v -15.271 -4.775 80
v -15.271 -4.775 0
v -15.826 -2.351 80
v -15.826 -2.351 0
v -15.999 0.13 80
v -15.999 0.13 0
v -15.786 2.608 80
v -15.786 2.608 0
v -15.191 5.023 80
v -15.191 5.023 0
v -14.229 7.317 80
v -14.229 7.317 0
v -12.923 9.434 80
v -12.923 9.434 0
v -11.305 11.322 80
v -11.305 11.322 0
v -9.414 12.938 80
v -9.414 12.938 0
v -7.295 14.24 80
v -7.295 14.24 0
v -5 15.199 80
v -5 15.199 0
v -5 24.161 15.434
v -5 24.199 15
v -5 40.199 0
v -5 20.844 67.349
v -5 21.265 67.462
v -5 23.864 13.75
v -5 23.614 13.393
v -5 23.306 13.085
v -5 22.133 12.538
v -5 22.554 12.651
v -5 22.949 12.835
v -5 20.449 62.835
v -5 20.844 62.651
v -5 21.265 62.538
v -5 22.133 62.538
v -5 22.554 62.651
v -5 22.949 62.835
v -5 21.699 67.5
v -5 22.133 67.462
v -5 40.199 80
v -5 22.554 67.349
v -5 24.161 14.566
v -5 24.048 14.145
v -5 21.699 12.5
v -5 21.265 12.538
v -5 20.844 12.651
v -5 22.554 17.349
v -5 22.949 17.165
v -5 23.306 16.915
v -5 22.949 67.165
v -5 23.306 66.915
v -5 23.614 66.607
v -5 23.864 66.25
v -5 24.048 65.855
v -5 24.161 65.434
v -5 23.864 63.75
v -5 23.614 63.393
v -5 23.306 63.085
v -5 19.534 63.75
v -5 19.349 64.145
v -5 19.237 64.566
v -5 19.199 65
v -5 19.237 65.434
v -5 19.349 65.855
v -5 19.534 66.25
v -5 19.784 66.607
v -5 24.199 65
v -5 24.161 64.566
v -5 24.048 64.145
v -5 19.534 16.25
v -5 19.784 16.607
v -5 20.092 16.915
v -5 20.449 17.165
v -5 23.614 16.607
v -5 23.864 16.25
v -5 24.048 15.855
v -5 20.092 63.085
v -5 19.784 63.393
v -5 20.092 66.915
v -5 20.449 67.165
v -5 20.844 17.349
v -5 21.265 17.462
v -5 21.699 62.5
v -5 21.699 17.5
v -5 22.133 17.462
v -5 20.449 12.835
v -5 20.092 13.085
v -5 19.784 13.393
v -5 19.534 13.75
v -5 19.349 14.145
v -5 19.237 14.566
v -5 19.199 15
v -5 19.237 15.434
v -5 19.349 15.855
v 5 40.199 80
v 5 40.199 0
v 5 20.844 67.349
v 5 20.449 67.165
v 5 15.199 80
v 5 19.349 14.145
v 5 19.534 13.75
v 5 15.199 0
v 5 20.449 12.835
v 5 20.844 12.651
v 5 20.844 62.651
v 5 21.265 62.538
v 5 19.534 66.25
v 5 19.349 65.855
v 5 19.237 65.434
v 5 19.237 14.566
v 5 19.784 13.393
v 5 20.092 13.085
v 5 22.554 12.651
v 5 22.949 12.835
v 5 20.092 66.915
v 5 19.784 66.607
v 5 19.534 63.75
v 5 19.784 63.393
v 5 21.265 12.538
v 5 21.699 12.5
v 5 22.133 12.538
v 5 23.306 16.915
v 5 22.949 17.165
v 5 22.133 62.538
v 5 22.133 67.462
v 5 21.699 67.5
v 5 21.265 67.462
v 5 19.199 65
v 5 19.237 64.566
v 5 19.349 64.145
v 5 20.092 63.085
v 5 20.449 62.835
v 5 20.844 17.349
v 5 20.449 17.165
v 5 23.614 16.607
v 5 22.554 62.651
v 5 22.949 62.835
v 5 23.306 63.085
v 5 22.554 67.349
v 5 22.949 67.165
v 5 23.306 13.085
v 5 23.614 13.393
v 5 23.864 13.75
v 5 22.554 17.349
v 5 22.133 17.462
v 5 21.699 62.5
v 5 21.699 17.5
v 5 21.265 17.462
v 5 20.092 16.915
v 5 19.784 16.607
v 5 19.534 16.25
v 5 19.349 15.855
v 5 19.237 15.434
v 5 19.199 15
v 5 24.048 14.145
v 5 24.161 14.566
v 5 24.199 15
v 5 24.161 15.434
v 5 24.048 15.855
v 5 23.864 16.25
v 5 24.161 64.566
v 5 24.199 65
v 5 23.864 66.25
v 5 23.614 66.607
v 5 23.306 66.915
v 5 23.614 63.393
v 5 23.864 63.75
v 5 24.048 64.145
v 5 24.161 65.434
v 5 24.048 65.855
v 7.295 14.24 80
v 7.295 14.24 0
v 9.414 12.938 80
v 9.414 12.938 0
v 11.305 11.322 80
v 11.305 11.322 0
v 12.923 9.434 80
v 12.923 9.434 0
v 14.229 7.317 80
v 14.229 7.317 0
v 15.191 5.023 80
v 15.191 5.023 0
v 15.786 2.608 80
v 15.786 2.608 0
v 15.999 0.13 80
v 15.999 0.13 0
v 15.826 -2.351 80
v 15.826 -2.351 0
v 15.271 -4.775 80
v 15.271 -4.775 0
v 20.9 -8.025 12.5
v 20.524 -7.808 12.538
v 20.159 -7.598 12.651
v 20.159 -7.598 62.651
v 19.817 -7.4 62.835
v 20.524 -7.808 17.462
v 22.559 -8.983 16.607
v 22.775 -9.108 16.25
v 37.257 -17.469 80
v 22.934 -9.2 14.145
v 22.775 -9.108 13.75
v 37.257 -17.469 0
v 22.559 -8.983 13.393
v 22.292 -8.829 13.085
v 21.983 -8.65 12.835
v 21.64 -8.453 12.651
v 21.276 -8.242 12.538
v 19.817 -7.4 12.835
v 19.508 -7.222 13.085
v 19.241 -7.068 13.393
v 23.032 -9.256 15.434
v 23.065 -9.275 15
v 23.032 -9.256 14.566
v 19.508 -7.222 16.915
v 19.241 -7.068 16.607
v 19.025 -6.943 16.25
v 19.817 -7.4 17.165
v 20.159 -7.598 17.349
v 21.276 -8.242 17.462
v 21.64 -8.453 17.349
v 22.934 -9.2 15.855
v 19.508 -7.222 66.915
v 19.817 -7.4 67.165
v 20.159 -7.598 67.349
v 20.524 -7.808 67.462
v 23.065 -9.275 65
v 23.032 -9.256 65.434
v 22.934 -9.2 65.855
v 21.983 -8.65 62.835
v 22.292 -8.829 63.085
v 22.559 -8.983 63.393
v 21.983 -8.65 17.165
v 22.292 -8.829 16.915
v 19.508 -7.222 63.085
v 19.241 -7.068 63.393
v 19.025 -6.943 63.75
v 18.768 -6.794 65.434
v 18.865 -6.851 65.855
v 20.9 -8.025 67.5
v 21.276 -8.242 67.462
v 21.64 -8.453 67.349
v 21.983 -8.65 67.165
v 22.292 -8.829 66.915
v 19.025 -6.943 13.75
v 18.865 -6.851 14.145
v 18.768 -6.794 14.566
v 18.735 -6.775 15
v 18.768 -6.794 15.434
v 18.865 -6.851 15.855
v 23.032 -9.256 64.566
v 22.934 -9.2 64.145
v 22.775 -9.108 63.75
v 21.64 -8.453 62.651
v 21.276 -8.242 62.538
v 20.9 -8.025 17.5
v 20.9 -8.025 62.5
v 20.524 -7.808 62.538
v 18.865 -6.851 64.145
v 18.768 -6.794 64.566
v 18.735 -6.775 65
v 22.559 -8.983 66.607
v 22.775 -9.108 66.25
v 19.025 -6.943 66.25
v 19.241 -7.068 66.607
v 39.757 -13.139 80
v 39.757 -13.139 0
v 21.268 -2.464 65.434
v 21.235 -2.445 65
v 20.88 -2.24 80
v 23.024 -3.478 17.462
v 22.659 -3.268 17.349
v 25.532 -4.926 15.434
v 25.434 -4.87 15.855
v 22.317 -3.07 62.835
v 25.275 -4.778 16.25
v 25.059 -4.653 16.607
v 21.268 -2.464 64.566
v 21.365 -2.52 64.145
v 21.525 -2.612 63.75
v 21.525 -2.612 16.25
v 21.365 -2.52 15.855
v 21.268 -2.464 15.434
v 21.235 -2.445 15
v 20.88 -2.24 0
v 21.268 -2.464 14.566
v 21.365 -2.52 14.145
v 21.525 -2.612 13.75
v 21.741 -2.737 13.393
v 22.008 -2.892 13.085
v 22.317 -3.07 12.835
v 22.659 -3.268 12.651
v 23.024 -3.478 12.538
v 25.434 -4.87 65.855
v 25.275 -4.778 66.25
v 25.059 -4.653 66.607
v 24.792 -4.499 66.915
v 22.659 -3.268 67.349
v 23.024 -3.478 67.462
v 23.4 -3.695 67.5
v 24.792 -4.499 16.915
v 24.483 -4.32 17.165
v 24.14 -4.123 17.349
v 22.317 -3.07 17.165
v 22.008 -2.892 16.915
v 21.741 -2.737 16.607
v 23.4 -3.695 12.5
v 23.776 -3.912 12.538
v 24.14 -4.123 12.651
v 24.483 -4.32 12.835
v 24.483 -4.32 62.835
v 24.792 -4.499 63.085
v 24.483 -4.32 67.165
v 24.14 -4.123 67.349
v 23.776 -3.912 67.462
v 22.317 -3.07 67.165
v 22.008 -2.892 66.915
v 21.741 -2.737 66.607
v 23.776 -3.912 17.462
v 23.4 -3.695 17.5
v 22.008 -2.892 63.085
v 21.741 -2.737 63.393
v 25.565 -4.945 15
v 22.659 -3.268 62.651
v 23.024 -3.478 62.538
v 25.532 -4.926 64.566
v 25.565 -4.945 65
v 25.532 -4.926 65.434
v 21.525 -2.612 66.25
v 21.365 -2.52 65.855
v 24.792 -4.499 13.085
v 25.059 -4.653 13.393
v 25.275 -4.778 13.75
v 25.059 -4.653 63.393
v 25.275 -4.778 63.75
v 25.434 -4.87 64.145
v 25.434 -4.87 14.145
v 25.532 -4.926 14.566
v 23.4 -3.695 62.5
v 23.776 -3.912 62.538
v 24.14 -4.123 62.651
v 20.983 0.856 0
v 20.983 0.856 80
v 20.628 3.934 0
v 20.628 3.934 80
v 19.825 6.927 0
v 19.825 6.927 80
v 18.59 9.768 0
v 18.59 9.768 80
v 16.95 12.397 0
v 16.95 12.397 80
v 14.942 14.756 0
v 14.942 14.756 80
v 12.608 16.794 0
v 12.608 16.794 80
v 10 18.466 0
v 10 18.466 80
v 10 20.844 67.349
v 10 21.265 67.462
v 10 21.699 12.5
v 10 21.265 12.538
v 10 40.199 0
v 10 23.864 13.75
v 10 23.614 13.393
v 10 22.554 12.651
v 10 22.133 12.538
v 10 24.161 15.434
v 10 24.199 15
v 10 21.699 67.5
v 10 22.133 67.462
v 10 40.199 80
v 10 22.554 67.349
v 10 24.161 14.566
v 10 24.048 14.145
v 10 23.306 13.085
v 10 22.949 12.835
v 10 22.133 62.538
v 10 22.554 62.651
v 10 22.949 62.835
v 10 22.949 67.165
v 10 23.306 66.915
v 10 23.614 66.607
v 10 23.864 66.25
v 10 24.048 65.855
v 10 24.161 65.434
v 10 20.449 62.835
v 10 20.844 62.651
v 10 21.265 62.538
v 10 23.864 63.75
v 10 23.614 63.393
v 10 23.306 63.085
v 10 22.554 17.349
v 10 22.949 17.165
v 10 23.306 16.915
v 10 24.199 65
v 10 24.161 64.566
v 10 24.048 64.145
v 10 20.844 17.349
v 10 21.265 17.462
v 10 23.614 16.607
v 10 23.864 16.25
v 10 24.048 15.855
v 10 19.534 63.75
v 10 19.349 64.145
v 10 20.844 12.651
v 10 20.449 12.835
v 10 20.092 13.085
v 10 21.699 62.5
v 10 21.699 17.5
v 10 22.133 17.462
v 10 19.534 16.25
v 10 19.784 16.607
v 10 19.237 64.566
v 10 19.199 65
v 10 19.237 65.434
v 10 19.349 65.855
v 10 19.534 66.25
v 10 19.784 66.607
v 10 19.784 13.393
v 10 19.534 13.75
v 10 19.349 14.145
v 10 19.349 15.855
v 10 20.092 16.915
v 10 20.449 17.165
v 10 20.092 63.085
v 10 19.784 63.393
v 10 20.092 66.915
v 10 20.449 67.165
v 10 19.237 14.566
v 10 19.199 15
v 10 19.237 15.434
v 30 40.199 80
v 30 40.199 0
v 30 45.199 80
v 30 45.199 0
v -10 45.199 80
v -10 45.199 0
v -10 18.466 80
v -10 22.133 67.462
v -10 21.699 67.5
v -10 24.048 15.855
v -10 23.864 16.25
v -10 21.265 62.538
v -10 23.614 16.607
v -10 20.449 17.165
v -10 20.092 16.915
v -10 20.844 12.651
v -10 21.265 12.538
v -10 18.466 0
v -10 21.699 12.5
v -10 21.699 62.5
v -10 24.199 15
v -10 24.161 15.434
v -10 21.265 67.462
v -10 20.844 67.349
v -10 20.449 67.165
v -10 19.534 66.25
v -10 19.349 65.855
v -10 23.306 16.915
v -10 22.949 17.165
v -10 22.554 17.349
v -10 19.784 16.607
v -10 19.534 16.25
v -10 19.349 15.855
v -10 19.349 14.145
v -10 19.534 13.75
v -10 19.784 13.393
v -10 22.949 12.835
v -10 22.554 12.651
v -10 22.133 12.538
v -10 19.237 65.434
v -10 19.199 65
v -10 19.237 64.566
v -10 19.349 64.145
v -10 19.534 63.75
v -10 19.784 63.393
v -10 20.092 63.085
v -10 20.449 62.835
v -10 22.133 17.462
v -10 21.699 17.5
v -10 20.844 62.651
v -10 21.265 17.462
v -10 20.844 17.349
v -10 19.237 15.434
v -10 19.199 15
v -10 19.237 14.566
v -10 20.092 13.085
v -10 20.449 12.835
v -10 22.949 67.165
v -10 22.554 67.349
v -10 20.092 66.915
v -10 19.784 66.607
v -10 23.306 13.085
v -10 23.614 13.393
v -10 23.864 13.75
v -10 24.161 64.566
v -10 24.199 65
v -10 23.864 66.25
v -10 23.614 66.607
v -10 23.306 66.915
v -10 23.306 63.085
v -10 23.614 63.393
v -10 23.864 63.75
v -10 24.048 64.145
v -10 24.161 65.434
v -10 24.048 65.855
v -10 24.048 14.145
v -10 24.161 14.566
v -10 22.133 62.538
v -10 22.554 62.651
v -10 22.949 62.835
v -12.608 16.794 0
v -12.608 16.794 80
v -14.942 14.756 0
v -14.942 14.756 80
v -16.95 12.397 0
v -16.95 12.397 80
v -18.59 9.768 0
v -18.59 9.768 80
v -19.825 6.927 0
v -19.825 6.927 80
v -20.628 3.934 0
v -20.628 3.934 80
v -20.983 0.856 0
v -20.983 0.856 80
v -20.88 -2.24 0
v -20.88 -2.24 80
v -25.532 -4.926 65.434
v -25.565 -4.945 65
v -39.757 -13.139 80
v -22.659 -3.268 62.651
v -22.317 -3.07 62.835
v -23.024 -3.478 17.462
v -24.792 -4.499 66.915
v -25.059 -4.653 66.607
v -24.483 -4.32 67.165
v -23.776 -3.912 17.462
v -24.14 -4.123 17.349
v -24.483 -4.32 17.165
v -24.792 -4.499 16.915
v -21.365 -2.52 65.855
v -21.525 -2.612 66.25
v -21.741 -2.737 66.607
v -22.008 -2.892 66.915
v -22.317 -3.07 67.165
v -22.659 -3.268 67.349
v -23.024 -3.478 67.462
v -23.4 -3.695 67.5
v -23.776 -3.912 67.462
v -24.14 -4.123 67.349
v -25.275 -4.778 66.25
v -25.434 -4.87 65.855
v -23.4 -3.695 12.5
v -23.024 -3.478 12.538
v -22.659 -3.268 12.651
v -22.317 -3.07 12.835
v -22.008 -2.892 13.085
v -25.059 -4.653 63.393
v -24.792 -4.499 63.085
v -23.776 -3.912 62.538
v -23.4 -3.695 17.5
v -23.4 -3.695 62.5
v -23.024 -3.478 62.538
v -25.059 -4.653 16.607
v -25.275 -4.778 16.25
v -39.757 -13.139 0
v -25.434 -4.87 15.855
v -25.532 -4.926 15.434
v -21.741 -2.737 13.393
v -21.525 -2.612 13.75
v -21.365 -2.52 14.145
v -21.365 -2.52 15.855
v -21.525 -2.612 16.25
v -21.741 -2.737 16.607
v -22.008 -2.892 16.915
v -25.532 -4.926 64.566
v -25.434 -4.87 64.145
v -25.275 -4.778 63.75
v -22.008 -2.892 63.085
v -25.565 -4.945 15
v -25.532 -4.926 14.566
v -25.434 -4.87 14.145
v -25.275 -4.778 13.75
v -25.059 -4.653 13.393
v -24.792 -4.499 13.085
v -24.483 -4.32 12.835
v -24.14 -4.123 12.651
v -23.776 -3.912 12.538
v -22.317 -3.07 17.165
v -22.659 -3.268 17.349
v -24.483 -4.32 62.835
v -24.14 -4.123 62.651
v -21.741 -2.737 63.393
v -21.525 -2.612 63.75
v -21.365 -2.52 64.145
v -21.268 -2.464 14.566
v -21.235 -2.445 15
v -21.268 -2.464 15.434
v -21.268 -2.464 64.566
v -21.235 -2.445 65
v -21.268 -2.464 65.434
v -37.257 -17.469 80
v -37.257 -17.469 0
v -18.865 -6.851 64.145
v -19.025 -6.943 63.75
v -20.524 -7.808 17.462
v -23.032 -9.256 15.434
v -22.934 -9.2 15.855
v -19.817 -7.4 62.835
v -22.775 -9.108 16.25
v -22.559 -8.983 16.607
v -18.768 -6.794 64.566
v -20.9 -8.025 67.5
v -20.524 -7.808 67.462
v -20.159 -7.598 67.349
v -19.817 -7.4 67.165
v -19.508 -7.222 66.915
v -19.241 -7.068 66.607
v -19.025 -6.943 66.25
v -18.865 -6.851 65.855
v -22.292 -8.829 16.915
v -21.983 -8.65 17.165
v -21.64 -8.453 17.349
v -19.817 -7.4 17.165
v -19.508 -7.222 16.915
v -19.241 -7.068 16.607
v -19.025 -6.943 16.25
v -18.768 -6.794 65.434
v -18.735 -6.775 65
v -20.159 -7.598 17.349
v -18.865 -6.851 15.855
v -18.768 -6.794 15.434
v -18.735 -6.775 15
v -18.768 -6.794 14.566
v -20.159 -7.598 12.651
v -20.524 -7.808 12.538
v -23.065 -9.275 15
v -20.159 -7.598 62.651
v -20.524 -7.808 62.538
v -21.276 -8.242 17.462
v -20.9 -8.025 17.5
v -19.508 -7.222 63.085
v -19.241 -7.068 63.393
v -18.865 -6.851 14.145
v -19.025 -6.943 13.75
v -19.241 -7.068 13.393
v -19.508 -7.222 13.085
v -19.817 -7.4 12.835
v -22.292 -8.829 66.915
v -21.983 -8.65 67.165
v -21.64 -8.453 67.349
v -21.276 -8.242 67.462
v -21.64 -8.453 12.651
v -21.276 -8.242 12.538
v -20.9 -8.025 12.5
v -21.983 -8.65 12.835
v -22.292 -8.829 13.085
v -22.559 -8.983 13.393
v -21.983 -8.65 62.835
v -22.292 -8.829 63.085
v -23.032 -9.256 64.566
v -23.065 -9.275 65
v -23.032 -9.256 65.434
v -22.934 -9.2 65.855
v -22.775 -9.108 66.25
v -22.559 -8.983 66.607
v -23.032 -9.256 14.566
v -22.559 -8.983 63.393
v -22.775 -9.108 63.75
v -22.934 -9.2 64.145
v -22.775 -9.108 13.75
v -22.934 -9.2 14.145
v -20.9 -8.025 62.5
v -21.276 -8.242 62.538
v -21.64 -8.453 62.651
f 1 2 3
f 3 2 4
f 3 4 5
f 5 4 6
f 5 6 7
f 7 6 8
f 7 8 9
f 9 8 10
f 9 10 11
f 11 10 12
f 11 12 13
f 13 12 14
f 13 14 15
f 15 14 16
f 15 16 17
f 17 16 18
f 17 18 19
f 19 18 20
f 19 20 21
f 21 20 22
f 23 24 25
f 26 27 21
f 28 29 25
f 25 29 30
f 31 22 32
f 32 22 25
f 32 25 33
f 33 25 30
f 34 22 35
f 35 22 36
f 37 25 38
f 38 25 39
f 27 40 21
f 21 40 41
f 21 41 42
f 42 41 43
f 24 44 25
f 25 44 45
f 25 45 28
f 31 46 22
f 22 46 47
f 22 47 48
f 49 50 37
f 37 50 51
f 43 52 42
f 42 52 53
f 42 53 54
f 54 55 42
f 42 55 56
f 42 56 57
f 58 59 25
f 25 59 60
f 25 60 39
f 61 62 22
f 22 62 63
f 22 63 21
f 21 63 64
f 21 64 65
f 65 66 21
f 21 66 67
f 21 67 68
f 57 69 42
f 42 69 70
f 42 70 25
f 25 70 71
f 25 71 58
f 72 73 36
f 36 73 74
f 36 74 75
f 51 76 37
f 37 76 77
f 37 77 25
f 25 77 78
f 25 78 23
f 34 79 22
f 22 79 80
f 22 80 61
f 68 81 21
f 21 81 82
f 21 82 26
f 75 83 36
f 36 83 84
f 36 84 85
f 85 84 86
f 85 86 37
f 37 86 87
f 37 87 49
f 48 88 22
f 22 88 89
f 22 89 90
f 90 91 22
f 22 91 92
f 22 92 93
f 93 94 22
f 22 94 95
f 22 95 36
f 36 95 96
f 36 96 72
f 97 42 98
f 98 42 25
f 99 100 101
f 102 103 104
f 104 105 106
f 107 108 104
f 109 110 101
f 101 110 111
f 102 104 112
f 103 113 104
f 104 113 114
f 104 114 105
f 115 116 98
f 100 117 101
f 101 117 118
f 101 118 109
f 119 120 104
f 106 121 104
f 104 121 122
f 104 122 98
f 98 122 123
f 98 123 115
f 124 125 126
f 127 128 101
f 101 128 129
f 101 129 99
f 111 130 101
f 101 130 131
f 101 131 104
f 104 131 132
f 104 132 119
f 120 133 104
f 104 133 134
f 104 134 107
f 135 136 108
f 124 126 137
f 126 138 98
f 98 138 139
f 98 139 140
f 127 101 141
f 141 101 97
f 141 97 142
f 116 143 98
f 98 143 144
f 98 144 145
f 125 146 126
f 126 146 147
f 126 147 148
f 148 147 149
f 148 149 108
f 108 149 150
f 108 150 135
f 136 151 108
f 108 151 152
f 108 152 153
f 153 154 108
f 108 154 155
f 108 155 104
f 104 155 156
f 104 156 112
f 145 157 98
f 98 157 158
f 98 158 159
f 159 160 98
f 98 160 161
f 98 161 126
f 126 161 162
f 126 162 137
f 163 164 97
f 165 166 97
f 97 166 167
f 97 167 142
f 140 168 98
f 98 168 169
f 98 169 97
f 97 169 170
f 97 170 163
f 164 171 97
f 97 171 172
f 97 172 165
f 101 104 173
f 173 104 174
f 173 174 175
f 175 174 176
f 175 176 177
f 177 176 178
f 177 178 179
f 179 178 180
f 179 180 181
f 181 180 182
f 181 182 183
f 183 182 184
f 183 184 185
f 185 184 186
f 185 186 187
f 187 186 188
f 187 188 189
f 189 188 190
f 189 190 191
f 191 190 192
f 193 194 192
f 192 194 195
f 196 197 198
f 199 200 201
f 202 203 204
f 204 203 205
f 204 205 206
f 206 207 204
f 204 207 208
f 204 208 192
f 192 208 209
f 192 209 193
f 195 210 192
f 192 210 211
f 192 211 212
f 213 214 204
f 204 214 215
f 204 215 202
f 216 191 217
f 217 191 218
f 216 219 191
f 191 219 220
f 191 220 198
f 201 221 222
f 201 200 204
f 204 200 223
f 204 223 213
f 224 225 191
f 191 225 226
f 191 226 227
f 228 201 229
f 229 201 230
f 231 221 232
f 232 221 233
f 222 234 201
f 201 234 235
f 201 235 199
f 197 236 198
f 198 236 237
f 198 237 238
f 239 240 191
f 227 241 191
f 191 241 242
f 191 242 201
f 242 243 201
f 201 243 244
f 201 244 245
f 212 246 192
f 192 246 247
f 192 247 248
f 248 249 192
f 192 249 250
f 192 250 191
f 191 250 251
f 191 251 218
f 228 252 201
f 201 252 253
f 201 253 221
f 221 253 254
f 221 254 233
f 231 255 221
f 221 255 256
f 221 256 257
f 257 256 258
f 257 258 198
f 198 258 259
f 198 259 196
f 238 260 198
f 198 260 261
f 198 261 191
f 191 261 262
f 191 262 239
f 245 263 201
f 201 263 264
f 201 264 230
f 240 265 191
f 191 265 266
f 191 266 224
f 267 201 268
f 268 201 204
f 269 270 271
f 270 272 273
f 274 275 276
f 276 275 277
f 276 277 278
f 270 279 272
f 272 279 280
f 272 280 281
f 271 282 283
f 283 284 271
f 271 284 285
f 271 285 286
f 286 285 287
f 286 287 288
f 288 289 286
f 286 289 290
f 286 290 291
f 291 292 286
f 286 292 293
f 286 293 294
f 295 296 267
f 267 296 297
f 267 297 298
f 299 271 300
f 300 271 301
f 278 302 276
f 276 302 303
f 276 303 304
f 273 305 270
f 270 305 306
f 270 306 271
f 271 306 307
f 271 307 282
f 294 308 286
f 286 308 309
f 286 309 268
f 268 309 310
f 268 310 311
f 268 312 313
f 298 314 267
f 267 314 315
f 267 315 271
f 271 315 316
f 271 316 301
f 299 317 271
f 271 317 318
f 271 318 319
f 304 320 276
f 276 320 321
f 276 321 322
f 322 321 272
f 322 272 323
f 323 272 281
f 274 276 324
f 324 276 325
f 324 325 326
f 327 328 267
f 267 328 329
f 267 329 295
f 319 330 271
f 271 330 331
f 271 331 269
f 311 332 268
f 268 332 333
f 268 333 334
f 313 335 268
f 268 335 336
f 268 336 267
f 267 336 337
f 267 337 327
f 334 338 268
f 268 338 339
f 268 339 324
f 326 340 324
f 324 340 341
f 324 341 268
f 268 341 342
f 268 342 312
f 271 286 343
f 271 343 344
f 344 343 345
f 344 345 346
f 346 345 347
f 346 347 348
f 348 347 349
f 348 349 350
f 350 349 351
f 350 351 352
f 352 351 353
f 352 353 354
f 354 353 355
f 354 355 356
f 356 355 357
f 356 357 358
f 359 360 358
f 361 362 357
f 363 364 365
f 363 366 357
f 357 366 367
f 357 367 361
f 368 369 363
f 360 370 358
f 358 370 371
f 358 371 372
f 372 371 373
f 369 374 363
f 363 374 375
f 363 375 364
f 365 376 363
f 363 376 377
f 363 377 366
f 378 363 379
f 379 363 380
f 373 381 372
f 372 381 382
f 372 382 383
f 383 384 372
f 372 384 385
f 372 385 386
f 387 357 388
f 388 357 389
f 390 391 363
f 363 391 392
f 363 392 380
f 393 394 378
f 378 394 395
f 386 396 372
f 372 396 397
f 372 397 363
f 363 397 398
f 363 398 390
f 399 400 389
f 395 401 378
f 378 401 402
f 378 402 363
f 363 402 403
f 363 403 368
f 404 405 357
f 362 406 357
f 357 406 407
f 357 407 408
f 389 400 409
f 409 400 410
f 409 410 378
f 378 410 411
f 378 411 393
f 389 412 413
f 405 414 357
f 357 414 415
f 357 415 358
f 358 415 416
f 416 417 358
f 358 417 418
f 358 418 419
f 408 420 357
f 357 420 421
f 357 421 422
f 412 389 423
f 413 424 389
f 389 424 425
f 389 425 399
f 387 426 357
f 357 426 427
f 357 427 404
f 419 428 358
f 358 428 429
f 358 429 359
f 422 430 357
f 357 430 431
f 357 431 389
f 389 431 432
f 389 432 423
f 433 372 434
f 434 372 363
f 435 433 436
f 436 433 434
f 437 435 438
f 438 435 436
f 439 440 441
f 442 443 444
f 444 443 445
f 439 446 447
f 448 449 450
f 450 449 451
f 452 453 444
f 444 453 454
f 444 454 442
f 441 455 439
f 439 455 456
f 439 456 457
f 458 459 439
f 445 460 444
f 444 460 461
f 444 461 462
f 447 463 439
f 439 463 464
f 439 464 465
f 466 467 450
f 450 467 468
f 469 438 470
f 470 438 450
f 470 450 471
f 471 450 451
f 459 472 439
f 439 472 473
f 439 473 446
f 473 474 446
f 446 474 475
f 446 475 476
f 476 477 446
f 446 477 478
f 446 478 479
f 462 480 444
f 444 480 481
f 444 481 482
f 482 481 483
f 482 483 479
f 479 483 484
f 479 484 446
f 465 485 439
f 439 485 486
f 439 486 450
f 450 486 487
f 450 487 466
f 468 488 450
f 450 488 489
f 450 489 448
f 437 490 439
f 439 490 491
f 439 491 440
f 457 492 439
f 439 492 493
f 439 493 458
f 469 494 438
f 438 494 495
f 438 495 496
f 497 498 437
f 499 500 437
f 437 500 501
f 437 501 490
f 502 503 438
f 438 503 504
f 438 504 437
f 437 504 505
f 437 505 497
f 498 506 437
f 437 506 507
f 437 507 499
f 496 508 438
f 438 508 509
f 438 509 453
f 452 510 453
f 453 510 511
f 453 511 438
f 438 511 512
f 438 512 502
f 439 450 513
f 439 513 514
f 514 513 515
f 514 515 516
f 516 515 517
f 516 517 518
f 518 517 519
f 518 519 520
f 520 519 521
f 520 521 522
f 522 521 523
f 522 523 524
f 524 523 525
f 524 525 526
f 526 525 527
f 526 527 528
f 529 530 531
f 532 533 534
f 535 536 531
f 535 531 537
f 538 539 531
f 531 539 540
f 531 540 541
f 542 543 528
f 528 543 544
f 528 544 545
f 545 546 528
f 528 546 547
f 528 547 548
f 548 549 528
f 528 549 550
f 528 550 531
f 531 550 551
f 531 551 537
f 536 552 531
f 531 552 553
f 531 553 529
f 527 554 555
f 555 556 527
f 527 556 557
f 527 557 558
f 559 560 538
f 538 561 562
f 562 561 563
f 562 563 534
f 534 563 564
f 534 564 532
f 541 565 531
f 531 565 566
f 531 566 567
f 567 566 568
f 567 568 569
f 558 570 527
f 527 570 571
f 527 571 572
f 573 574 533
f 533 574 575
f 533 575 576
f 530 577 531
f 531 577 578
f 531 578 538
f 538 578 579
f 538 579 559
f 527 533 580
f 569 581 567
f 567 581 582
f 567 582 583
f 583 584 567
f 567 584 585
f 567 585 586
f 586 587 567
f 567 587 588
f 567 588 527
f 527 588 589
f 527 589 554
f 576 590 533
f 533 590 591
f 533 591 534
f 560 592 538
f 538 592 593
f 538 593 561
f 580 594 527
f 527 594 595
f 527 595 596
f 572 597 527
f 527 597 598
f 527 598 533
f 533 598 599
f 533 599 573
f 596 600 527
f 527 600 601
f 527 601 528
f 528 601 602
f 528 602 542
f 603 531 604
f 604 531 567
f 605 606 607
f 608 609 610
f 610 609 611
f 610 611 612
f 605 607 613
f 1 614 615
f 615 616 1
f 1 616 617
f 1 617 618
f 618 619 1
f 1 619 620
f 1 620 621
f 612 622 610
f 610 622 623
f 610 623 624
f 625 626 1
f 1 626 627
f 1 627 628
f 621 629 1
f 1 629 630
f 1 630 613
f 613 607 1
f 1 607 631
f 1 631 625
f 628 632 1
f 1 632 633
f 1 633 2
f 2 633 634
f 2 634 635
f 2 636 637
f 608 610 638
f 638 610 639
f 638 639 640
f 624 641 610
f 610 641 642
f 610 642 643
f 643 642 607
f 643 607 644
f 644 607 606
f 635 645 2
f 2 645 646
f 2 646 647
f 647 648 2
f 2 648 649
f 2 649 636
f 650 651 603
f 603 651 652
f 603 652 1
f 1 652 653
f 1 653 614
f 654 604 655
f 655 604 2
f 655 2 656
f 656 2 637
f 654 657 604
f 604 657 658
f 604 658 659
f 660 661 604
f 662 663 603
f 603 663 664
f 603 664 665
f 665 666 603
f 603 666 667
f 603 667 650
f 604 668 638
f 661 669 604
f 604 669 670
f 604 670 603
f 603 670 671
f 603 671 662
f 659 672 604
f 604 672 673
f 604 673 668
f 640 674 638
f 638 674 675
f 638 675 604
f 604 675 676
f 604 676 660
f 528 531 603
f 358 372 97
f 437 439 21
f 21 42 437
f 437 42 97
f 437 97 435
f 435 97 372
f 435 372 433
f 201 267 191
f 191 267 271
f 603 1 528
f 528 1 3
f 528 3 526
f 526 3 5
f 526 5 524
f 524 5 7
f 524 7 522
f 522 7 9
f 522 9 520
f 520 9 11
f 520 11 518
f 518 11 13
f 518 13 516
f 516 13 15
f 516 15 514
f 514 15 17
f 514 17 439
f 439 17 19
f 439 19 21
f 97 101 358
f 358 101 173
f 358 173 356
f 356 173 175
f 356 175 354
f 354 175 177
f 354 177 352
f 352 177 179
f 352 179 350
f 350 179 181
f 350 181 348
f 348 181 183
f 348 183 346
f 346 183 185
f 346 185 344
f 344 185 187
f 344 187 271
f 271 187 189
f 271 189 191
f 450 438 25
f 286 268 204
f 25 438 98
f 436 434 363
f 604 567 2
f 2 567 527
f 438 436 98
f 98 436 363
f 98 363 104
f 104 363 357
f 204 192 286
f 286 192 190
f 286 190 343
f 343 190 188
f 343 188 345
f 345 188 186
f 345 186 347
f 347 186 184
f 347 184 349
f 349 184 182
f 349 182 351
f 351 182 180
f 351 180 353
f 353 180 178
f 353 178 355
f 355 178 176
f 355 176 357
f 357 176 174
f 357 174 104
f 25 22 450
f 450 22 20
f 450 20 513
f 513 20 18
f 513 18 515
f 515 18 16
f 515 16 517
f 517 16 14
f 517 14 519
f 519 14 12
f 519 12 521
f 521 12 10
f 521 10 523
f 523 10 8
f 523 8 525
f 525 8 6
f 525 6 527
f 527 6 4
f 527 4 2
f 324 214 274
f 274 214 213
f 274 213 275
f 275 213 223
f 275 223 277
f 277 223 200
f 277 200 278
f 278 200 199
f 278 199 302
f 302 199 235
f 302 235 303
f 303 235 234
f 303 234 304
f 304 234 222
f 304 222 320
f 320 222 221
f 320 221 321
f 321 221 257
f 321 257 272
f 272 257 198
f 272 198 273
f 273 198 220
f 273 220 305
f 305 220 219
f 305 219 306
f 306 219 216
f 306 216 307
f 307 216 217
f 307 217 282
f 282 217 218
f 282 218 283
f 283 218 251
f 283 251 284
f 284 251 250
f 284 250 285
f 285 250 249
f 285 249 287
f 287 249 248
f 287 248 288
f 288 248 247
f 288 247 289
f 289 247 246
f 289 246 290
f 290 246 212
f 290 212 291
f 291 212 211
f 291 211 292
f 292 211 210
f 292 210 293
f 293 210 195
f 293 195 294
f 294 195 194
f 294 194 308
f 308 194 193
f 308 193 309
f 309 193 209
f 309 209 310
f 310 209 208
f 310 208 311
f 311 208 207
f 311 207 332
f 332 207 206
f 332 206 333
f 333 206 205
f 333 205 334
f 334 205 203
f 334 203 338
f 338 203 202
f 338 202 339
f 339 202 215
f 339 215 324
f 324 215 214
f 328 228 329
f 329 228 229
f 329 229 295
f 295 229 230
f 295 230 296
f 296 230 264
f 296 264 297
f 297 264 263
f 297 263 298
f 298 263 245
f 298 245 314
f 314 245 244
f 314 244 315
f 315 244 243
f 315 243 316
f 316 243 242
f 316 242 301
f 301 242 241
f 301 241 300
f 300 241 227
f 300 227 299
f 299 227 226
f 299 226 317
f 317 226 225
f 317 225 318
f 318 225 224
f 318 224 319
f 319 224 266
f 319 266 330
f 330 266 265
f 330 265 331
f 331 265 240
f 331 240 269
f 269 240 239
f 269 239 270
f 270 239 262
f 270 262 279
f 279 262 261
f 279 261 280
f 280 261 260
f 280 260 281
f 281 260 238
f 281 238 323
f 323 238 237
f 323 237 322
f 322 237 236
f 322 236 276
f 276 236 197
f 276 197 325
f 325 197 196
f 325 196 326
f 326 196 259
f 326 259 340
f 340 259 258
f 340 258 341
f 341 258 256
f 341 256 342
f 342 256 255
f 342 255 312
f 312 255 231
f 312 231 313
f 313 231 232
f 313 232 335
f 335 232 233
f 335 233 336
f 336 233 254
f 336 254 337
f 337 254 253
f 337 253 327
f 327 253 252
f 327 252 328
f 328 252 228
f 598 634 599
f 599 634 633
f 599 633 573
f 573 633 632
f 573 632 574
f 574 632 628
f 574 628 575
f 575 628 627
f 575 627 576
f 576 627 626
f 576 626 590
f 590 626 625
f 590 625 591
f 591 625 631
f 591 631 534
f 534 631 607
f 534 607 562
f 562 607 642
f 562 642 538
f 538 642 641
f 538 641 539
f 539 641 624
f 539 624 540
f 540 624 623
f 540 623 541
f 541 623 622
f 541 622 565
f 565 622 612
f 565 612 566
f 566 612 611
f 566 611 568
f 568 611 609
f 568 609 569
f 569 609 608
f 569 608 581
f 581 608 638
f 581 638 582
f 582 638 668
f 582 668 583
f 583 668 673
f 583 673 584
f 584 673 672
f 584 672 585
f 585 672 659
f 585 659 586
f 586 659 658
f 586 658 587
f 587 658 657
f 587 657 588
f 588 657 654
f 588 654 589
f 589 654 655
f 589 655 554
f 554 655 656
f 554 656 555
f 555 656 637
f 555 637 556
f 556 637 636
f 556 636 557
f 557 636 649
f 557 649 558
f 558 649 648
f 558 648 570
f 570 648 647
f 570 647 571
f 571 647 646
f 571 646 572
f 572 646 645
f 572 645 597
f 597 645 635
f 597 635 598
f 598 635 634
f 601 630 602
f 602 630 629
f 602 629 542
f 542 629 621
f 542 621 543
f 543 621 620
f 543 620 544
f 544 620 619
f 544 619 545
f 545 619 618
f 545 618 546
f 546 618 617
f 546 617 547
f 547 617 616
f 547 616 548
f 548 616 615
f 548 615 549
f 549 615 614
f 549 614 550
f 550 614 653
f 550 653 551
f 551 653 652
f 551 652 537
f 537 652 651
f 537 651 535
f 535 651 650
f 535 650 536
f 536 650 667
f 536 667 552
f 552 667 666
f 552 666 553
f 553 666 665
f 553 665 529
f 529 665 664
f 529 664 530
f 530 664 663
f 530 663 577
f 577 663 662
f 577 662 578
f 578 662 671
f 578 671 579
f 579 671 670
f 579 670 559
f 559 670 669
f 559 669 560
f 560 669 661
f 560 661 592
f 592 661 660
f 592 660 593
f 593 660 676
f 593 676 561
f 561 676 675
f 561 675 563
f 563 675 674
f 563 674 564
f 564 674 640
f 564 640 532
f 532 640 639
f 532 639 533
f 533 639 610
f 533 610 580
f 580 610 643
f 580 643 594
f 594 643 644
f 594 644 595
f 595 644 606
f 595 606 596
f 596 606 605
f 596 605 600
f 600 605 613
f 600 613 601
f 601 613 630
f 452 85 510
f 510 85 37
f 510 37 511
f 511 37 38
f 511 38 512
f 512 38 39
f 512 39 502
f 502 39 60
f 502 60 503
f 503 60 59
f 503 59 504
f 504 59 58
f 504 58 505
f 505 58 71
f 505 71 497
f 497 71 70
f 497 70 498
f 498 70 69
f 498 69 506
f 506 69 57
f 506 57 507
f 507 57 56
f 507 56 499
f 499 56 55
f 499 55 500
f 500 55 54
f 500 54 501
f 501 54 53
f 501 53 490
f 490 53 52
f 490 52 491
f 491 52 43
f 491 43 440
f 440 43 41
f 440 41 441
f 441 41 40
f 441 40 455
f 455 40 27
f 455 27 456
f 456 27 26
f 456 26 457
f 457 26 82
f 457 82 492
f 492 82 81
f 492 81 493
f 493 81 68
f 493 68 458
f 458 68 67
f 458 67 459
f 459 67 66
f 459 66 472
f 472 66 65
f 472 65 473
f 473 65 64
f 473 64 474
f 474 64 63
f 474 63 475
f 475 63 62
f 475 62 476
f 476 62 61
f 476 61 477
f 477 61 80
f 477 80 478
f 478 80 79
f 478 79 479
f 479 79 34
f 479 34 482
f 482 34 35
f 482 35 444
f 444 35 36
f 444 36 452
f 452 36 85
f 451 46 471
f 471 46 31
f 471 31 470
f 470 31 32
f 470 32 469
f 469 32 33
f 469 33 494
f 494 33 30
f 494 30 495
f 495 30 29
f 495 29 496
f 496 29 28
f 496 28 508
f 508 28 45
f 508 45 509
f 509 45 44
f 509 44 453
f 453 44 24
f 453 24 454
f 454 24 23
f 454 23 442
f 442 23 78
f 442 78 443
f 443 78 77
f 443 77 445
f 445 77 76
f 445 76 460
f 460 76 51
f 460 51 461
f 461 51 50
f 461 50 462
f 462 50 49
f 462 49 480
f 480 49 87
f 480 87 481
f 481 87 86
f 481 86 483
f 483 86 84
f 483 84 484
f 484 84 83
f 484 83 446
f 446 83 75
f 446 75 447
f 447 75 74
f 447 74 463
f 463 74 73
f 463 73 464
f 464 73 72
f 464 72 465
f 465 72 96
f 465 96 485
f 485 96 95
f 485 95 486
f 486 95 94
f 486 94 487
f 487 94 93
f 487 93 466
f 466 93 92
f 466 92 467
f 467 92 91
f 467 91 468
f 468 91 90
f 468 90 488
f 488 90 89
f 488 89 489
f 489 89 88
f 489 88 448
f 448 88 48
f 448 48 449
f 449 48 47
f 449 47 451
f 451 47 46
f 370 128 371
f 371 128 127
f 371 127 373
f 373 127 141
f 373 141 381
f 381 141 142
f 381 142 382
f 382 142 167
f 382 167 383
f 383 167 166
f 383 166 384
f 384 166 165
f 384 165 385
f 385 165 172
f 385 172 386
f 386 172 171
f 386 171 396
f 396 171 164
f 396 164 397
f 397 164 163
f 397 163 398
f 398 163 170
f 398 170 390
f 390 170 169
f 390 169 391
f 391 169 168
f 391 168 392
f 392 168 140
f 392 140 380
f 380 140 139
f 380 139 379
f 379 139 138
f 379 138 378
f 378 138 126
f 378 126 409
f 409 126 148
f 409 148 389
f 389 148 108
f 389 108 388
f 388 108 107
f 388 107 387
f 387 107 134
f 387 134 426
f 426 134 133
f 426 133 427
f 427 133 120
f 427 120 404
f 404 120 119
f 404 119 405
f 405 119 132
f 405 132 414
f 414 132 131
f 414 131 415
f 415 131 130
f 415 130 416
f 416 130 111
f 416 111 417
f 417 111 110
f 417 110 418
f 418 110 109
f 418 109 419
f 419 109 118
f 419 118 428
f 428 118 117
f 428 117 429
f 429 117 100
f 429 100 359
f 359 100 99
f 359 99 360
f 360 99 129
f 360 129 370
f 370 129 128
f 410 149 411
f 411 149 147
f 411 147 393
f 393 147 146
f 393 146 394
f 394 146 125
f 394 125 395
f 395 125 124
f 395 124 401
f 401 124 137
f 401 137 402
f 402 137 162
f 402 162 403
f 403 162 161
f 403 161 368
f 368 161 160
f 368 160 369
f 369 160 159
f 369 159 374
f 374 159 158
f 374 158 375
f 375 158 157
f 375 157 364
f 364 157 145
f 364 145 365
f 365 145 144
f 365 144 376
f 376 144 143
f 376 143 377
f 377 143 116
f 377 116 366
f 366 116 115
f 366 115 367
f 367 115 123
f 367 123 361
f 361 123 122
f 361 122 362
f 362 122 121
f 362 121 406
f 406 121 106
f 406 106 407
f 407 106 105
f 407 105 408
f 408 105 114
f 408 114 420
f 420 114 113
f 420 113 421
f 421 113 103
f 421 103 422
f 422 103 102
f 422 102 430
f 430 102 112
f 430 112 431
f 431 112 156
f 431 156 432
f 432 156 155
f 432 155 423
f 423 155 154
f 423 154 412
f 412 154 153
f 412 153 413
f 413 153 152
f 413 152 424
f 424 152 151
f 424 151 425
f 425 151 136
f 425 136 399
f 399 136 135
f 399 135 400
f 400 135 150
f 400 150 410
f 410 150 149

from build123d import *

# Parameters (mm, degrees)
BOSS_EXTRUDE1_DEPTH            = 80
F_5_0MM_DOWEL_HOLE1_AT_2_COUNT = 2
F_5_0MM_DOWEL_HOLE1_AT_2_PITCH = 50
SKETCH5_W                      = 2.5
SKETCH5_H                      = 34.757041555
F_5_0MM_DOWEL_HOLE2_AT_2_COUNT = 2
F_5_0MM_DOWEL_HOLE2_AT_2_PITCH = 50
MIRROR2_COPY_1_SKETCH_W        = 2.5
MIRROR2_COPY_1_SKETCH_H        = 34.757041555


with BuildPart() as part:
    # Sketch1 → Boss-Extrude1 (new body)
    with BuildSketch(Plane.XY):
        with BuildLine():
            Line((-5, 15.198684154), (-5, 40.198684154))
            Line((-5, 40.198684154), (5, 40.198684154))
            Line((5, 40.198684154), (5, 15.198684154))
            ThreePointArc((5, 15.198684154), (14.229023395, 7.316754283), (15.270817283, -4.775158585))
            Line((15.270817283, -4.775158585), (37.257041555, -17.468911087))
            Line((37.257041555, -17.468911087), (39.757041555, -13.138784068))
            Line((39.757041555, -13.138784068), (20.88016837, -2.240216253))
            ThreePointArc((20.88016837, -2.240216253), (18.589915709, 9.768061933), (10, 18.466185313))
            Line((10, 18.466185313), (10, 40.198684154))
            Line((10, 40.198684154), (30, 40.198684154))
            Line((30, 40.198684154), (30, 45.198684154))
            Line((30, 45.198684154), (-10, 45.198684154))
            Line((-10, 45.198684154), (-10, 18.466185313))
            ThreePointArc((-10, 18.466185313), (-18.589915709, 9.768061933), (-20.88016837, -2.240216253))
            Line((-20.88016837, -2.240216253), (-39.757041555, -13.138784068))
            Line((-39.757041555, -13.138784068), (-37.257041555, -17.468911087))
            Line((-37.257041555, -17.468911087), (-15.270817283, -4.775158585))
            ThreePointArc((-15.270817283, -4.775158585), (-14.229023395, 7.316754283), (-5, 15.198684154))
        make_face()
    extrude(amount=BOSS_EXTRUDE1_DEPTH)

    # Sketch3 → Ø5.0mm Dowel Hole1 (revolve, cut)
    with BuildSketch(Plane(origin=(20.899982408, -8.025158585, 65), x_dir=(0.866025403784438, -0.5000000000000012, 0), z_dir=(0, 0, 1))):
        Polygon((0, 0), (0, 11.502151548), (2.5, 10), (2.5, 0), align=None)
    f_5_0mm_dowel_hole1 = revolve(axis=Axis((17.724982408, -13.524419899, 65), (0.5000000000000012, 0.8660254037844379, 0)), mode=Mode.SUBTRACT)

    # Ø5.0mm Dowel Hole1 at 2: Ø5.0mm Dowel Hole1 ×2
    with Locations(*[(0, 0, -i * F_5_0MM_DOWEL_HOLE1_AT_2_PITCH) for i in range(1, F_5_0MM_DOWEL_HOLE1_AT_2_COUNT)]):
        add(f_5_0mm_dowel_hole1, mode=Mode.SUBTRACT)

    # Mirror1: Ø5.0mm Dowel Hole1 across plane
    add(f_5_0mm_dowel_hole1.mirror(Plane(origin=(0, 0, 0), x_dir=(0, 0, 1), z_dir=(1, 0, 0))), mode=Mode.SUBTRACT)

    # Mirror1 copy 1 sketch → Mirror1 copy 1 (revolve, cut)
    with BuildSketch(Plane(origin=(-20.899982408, -8.025158585, 15), x_dir=(-0.866025403784438, -0.5000000000000012, 0), z_dir=(0, 0, 1))):
        Polygon((0, 0), (0, -11.502151548), (2.5, -10), (2.5, 0), align=None)
    revolve(axis=Axis((-17.724982408, -13.524419899, 15), (0.5000000000000012, -0.8660254037844379, 0)), mode=Mode.SUBTRACT)

    # Sketch5 → Ø5.0mm Dowel Hole2 (revolve, cut)
    with BuildSketch(Plane(origin=(-5, 21.698684154, 15), x_dir=(0, 0, -1), z_dir=(0, 1, 0))):
        with Locations((1.25, 17.378520778)):
            Rectangle(SKETCH5_W, SKETCH5_H)
    f_5_0mm_dowel_hole2 = revolve(axis=Axis((1.35, 21.698684154, 15), (-1, 0, 0)), mode=Mode.SUBTRACT)

    # Ø5.0mm Dowel Hole2 at 2: Ø5.0mm Dowel Hole2 ×2
    with Locations(*[(0, 0, i * F_5_0MM_DOWEL_HOLE2_AT_2_PITCH) for i in range(1, F_5_0MM_DOWEL_HOLE2_AT_2_COUNT)]):
        add(f_5_0mm_dowel_hole2, mode=Mode.SUBTRACT)

    # Mirror2: Ø5.0mm Dowel Hole2 across plane
    add(f_5_0mm_dowel_hole2.mirror(Plane(origin=(0, 0, 0), x_dir=(0, 0, 1), z_dir=(1, 0, 0))), mode=Mode.SUBTRACT)

    # Mirror2 copy 1 sketch → Mirror2 copy 1 (revolve, cut)
    with BuildSketch(Plane(origin=(5, 21.698684154, 65), x_dir=(0, 0, -1), z_dir=(0, 1, 0))):
        with Locations((1.25, -17.378520778)):
            Rectangle(MIRROR2_COPY_1_SKETCH_W, MIRROR2_COPY_1_SKETCH_H)
    revolve(axis=Axis((-1.35, 21.698684154, 65), (-1, 0, 0)), mode=Mode.SUBTRACT)


solid = part.part
